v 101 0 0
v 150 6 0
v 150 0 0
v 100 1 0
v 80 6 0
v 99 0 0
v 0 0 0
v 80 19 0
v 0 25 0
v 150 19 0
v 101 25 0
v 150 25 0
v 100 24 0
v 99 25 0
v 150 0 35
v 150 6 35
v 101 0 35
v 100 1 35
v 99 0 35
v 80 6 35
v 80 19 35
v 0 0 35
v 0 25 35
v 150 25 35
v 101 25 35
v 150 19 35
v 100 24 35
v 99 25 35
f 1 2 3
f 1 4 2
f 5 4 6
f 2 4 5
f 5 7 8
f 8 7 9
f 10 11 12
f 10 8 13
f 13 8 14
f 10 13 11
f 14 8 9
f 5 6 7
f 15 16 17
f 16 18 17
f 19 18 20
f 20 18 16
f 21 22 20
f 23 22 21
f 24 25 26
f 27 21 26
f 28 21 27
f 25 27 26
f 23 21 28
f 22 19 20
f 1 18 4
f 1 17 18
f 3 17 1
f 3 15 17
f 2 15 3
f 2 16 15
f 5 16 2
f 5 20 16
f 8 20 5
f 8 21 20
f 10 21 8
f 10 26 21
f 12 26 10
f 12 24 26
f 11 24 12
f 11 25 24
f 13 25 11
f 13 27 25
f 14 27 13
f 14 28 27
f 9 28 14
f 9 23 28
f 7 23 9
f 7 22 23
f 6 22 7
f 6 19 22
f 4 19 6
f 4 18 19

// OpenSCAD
p0 = [0,0];
p1 = [0,2.5];
p2 = [9.9,2.5];
p3 = [10,2.4];
p4 = [10.1,2.5];
p5 = [15,2.5];
p6 = [15,1.9];
p7 = [8,1.9];
p8 = [8,.6];
p9 = [15,.6];
p10 = [15, 0];
p11 = [10.1,0];
p12 = [10,.1];
p13 = [9.9,0];
points = [p0, p1, p2, p3, p4, p5, p6, p7, p8, p9, p10, p11, p12, p13];
scale([10,10,10])
    linear_extrude(height=3.5)
        polygon(points);
